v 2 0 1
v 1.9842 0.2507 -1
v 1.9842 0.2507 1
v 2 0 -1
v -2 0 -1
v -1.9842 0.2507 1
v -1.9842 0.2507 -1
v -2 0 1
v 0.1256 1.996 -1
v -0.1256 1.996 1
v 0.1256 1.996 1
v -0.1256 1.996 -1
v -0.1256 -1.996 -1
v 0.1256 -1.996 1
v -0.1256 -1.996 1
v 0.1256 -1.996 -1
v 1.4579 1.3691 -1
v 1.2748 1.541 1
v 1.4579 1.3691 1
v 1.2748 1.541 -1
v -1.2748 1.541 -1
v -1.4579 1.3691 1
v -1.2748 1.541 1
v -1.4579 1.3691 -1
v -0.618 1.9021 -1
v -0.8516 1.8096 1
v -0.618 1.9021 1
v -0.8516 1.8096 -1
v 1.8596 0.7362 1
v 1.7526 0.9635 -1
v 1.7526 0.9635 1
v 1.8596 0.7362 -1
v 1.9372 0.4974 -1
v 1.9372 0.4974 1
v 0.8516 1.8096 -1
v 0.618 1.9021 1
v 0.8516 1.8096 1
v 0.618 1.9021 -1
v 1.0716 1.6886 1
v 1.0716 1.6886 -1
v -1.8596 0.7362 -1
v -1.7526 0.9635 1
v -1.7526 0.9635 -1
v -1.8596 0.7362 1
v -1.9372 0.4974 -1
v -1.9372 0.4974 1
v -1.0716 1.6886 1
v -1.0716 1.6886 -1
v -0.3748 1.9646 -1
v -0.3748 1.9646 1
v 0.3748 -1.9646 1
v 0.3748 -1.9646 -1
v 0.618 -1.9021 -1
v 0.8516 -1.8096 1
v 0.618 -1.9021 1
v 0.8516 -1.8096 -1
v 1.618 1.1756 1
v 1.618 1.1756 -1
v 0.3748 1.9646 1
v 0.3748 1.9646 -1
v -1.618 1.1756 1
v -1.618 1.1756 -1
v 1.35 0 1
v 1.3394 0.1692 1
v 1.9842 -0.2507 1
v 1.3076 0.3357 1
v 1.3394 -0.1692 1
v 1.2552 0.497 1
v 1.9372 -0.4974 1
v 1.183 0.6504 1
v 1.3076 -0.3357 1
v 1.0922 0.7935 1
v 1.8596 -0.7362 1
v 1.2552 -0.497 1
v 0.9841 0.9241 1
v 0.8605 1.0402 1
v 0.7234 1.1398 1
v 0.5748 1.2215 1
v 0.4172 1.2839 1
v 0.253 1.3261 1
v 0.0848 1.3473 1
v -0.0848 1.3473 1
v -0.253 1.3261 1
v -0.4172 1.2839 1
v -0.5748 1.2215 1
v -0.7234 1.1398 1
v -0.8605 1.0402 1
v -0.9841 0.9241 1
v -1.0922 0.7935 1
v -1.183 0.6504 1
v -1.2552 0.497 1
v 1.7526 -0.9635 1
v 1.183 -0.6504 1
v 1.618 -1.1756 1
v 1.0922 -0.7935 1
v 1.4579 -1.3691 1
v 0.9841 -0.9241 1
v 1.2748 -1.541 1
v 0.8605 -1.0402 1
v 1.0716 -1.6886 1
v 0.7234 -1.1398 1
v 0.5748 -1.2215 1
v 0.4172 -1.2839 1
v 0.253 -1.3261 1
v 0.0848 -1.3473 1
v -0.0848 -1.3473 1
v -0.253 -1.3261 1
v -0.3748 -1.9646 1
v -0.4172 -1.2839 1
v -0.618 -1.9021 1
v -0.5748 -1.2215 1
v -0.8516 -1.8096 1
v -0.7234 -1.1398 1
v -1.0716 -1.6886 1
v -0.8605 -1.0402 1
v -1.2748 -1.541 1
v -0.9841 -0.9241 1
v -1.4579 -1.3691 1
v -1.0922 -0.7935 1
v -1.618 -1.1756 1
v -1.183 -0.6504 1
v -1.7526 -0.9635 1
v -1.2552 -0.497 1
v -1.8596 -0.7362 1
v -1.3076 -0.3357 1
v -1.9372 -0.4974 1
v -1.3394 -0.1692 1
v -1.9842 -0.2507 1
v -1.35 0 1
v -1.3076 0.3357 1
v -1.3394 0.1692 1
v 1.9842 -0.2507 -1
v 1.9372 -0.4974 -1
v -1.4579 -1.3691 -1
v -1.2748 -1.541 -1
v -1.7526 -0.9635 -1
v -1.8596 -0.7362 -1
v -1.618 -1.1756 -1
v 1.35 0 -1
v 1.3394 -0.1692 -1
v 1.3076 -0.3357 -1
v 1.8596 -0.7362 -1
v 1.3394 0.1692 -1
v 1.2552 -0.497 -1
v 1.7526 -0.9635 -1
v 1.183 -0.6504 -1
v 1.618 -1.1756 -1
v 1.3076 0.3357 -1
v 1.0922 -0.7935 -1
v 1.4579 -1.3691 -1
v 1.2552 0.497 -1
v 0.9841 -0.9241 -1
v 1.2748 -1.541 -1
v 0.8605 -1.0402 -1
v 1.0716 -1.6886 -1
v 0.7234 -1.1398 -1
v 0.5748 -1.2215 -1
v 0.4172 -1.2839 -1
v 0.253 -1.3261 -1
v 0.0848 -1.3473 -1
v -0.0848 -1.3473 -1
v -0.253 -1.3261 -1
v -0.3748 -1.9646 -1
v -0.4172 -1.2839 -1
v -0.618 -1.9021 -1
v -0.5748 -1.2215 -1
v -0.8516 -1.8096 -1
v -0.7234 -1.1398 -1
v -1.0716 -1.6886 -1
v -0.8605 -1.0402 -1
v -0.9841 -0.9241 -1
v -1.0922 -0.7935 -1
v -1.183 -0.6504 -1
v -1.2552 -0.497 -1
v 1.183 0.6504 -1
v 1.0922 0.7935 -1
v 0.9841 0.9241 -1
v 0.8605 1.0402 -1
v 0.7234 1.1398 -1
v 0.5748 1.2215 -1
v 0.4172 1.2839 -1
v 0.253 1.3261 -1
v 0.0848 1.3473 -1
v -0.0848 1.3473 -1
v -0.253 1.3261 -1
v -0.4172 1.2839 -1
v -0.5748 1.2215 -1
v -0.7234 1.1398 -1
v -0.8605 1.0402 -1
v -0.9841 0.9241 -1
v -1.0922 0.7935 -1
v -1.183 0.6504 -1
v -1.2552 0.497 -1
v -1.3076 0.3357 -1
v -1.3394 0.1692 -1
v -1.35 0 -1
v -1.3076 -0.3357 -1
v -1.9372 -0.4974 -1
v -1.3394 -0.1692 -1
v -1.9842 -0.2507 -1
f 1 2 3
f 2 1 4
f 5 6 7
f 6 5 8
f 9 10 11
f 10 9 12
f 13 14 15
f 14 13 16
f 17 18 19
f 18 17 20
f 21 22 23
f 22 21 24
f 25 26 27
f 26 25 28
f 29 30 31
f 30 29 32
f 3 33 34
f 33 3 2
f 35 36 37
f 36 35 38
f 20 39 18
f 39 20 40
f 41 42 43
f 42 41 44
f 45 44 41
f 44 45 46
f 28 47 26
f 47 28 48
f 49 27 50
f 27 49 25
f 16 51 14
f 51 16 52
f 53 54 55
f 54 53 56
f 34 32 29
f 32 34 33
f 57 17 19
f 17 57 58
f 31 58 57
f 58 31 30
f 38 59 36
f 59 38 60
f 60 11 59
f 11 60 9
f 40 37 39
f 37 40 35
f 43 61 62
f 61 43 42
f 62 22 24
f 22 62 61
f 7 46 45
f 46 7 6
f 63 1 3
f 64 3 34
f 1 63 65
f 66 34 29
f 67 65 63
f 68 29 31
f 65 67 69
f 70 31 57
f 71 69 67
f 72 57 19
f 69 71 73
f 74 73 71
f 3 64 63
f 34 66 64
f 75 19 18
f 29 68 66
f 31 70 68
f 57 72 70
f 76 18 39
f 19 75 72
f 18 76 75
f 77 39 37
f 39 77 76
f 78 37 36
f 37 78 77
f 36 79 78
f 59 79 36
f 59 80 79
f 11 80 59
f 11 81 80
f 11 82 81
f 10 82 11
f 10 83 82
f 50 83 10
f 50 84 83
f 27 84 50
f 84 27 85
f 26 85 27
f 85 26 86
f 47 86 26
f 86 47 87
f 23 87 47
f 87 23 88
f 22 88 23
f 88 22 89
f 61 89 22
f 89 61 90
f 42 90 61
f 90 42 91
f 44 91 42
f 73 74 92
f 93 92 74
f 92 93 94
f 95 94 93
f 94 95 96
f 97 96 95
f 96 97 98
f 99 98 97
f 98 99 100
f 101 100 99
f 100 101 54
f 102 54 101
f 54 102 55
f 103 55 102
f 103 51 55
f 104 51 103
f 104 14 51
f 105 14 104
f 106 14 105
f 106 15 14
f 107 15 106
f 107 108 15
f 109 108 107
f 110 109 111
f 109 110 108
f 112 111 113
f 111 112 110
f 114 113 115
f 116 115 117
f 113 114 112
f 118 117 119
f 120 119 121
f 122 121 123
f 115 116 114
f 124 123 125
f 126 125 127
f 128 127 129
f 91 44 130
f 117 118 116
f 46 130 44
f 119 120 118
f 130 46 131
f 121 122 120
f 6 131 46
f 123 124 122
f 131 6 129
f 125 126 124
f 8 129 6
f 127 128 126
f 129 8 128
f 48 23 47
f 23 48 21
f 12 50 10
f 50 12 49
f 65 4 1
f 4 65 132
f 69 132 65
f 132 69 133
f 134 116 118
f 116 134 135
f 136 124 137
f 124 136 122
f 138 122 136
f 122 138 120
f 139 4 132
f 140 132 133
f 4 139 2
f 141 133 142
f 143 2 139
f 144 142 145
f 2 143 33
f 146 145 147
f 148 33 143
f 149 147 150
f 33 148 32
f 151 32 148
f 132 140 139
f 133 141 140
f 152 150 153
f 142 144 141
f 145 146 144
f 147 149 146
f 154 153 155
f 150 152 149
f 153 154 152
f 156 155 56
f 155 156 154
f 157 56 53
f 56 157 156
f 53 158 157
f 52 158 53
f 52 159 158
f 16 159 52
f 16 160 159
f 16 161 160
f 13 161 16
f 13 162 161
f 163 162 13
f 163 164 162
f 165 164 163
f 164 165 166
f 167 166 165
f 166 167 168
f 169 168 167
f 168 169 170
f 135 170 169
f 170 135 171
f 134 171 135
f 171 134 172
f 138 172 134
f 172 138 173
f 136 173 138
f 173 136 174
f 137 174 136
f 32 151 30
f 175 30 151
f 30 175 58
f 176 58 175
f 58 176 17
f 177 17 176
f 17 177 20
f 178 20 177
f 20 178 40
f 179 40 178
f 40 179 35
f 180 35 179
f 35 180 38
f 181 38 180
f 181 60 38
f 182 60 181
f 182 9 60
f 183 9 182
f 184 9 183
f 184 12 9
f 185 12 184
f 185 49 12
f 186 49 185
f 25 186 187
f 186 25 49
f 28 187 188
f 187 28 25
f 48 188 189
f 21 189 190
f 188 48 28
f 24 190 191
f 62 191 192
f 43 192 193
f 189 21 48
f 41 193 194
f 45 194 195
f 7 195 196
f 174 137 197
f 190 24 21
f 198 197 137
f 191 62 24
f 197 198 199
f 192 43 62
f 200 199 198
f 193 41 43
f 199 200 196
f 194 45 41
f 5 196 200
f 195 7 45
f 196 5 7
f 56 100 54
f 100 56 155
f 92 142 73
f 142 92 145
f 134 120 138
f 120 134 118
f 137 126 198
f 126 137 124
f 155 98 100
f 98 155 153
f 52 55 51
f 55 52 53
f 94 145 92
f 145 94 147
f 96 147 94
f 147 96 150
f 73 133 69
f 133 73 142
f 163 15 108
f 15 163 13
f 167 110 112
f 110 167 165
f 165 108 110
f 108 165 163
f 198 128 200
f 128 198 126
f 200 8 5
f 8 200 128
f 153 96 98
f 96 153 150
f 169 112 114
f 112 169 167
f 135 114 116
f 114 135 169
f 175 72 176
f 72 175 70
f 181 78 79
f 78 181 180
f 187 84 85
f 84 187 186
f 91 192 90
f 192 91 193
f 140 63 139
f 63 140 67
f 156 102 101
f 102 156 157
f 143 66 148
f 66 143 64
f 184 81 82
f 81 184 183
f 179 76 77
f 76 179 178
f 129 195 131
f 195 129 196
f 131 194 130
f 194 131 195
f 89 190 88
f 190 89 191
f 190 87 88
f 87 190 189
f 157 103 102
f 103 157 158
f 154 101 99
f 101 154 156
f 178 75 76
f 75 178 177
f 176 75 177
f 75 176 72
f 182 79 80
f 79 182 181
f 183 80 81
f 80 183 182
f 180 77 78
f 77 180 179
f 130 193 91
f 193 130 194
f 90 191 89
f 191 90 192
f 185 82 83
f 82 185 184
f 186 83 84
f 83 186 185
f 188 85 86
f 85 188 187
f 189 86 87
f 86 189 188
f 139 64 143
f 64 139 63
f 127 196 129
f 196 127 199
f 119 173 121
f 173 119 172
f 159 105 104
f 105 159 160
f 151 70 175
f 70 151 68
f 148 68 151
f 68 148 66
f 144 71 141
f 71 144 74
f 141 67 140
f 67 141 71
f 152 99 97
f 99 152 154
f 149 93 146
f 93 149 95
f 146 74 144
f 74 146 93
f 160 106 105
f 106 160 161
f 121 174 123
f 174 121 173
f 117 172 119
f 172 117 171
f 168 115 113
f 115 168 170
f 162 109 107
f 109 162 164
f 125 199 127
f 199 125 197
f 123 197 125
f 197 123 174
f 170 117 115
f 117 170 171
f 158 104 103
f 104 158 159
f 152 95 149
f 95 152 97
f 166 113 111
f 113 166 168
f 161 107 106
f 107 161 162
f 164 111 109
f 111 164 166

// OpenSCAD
$fn = 50;


difference() {
	union() {
		translate(v = [0, 0, -1.0000000000]) {
			cylinder(h = 2, r = 2.0000000000);
		}
	}
	union() {
		translate(v = [0, 0, -100.0000000000]) {
			cylinder(h = 200, r = 1.3500000000);
		}
	}
}
